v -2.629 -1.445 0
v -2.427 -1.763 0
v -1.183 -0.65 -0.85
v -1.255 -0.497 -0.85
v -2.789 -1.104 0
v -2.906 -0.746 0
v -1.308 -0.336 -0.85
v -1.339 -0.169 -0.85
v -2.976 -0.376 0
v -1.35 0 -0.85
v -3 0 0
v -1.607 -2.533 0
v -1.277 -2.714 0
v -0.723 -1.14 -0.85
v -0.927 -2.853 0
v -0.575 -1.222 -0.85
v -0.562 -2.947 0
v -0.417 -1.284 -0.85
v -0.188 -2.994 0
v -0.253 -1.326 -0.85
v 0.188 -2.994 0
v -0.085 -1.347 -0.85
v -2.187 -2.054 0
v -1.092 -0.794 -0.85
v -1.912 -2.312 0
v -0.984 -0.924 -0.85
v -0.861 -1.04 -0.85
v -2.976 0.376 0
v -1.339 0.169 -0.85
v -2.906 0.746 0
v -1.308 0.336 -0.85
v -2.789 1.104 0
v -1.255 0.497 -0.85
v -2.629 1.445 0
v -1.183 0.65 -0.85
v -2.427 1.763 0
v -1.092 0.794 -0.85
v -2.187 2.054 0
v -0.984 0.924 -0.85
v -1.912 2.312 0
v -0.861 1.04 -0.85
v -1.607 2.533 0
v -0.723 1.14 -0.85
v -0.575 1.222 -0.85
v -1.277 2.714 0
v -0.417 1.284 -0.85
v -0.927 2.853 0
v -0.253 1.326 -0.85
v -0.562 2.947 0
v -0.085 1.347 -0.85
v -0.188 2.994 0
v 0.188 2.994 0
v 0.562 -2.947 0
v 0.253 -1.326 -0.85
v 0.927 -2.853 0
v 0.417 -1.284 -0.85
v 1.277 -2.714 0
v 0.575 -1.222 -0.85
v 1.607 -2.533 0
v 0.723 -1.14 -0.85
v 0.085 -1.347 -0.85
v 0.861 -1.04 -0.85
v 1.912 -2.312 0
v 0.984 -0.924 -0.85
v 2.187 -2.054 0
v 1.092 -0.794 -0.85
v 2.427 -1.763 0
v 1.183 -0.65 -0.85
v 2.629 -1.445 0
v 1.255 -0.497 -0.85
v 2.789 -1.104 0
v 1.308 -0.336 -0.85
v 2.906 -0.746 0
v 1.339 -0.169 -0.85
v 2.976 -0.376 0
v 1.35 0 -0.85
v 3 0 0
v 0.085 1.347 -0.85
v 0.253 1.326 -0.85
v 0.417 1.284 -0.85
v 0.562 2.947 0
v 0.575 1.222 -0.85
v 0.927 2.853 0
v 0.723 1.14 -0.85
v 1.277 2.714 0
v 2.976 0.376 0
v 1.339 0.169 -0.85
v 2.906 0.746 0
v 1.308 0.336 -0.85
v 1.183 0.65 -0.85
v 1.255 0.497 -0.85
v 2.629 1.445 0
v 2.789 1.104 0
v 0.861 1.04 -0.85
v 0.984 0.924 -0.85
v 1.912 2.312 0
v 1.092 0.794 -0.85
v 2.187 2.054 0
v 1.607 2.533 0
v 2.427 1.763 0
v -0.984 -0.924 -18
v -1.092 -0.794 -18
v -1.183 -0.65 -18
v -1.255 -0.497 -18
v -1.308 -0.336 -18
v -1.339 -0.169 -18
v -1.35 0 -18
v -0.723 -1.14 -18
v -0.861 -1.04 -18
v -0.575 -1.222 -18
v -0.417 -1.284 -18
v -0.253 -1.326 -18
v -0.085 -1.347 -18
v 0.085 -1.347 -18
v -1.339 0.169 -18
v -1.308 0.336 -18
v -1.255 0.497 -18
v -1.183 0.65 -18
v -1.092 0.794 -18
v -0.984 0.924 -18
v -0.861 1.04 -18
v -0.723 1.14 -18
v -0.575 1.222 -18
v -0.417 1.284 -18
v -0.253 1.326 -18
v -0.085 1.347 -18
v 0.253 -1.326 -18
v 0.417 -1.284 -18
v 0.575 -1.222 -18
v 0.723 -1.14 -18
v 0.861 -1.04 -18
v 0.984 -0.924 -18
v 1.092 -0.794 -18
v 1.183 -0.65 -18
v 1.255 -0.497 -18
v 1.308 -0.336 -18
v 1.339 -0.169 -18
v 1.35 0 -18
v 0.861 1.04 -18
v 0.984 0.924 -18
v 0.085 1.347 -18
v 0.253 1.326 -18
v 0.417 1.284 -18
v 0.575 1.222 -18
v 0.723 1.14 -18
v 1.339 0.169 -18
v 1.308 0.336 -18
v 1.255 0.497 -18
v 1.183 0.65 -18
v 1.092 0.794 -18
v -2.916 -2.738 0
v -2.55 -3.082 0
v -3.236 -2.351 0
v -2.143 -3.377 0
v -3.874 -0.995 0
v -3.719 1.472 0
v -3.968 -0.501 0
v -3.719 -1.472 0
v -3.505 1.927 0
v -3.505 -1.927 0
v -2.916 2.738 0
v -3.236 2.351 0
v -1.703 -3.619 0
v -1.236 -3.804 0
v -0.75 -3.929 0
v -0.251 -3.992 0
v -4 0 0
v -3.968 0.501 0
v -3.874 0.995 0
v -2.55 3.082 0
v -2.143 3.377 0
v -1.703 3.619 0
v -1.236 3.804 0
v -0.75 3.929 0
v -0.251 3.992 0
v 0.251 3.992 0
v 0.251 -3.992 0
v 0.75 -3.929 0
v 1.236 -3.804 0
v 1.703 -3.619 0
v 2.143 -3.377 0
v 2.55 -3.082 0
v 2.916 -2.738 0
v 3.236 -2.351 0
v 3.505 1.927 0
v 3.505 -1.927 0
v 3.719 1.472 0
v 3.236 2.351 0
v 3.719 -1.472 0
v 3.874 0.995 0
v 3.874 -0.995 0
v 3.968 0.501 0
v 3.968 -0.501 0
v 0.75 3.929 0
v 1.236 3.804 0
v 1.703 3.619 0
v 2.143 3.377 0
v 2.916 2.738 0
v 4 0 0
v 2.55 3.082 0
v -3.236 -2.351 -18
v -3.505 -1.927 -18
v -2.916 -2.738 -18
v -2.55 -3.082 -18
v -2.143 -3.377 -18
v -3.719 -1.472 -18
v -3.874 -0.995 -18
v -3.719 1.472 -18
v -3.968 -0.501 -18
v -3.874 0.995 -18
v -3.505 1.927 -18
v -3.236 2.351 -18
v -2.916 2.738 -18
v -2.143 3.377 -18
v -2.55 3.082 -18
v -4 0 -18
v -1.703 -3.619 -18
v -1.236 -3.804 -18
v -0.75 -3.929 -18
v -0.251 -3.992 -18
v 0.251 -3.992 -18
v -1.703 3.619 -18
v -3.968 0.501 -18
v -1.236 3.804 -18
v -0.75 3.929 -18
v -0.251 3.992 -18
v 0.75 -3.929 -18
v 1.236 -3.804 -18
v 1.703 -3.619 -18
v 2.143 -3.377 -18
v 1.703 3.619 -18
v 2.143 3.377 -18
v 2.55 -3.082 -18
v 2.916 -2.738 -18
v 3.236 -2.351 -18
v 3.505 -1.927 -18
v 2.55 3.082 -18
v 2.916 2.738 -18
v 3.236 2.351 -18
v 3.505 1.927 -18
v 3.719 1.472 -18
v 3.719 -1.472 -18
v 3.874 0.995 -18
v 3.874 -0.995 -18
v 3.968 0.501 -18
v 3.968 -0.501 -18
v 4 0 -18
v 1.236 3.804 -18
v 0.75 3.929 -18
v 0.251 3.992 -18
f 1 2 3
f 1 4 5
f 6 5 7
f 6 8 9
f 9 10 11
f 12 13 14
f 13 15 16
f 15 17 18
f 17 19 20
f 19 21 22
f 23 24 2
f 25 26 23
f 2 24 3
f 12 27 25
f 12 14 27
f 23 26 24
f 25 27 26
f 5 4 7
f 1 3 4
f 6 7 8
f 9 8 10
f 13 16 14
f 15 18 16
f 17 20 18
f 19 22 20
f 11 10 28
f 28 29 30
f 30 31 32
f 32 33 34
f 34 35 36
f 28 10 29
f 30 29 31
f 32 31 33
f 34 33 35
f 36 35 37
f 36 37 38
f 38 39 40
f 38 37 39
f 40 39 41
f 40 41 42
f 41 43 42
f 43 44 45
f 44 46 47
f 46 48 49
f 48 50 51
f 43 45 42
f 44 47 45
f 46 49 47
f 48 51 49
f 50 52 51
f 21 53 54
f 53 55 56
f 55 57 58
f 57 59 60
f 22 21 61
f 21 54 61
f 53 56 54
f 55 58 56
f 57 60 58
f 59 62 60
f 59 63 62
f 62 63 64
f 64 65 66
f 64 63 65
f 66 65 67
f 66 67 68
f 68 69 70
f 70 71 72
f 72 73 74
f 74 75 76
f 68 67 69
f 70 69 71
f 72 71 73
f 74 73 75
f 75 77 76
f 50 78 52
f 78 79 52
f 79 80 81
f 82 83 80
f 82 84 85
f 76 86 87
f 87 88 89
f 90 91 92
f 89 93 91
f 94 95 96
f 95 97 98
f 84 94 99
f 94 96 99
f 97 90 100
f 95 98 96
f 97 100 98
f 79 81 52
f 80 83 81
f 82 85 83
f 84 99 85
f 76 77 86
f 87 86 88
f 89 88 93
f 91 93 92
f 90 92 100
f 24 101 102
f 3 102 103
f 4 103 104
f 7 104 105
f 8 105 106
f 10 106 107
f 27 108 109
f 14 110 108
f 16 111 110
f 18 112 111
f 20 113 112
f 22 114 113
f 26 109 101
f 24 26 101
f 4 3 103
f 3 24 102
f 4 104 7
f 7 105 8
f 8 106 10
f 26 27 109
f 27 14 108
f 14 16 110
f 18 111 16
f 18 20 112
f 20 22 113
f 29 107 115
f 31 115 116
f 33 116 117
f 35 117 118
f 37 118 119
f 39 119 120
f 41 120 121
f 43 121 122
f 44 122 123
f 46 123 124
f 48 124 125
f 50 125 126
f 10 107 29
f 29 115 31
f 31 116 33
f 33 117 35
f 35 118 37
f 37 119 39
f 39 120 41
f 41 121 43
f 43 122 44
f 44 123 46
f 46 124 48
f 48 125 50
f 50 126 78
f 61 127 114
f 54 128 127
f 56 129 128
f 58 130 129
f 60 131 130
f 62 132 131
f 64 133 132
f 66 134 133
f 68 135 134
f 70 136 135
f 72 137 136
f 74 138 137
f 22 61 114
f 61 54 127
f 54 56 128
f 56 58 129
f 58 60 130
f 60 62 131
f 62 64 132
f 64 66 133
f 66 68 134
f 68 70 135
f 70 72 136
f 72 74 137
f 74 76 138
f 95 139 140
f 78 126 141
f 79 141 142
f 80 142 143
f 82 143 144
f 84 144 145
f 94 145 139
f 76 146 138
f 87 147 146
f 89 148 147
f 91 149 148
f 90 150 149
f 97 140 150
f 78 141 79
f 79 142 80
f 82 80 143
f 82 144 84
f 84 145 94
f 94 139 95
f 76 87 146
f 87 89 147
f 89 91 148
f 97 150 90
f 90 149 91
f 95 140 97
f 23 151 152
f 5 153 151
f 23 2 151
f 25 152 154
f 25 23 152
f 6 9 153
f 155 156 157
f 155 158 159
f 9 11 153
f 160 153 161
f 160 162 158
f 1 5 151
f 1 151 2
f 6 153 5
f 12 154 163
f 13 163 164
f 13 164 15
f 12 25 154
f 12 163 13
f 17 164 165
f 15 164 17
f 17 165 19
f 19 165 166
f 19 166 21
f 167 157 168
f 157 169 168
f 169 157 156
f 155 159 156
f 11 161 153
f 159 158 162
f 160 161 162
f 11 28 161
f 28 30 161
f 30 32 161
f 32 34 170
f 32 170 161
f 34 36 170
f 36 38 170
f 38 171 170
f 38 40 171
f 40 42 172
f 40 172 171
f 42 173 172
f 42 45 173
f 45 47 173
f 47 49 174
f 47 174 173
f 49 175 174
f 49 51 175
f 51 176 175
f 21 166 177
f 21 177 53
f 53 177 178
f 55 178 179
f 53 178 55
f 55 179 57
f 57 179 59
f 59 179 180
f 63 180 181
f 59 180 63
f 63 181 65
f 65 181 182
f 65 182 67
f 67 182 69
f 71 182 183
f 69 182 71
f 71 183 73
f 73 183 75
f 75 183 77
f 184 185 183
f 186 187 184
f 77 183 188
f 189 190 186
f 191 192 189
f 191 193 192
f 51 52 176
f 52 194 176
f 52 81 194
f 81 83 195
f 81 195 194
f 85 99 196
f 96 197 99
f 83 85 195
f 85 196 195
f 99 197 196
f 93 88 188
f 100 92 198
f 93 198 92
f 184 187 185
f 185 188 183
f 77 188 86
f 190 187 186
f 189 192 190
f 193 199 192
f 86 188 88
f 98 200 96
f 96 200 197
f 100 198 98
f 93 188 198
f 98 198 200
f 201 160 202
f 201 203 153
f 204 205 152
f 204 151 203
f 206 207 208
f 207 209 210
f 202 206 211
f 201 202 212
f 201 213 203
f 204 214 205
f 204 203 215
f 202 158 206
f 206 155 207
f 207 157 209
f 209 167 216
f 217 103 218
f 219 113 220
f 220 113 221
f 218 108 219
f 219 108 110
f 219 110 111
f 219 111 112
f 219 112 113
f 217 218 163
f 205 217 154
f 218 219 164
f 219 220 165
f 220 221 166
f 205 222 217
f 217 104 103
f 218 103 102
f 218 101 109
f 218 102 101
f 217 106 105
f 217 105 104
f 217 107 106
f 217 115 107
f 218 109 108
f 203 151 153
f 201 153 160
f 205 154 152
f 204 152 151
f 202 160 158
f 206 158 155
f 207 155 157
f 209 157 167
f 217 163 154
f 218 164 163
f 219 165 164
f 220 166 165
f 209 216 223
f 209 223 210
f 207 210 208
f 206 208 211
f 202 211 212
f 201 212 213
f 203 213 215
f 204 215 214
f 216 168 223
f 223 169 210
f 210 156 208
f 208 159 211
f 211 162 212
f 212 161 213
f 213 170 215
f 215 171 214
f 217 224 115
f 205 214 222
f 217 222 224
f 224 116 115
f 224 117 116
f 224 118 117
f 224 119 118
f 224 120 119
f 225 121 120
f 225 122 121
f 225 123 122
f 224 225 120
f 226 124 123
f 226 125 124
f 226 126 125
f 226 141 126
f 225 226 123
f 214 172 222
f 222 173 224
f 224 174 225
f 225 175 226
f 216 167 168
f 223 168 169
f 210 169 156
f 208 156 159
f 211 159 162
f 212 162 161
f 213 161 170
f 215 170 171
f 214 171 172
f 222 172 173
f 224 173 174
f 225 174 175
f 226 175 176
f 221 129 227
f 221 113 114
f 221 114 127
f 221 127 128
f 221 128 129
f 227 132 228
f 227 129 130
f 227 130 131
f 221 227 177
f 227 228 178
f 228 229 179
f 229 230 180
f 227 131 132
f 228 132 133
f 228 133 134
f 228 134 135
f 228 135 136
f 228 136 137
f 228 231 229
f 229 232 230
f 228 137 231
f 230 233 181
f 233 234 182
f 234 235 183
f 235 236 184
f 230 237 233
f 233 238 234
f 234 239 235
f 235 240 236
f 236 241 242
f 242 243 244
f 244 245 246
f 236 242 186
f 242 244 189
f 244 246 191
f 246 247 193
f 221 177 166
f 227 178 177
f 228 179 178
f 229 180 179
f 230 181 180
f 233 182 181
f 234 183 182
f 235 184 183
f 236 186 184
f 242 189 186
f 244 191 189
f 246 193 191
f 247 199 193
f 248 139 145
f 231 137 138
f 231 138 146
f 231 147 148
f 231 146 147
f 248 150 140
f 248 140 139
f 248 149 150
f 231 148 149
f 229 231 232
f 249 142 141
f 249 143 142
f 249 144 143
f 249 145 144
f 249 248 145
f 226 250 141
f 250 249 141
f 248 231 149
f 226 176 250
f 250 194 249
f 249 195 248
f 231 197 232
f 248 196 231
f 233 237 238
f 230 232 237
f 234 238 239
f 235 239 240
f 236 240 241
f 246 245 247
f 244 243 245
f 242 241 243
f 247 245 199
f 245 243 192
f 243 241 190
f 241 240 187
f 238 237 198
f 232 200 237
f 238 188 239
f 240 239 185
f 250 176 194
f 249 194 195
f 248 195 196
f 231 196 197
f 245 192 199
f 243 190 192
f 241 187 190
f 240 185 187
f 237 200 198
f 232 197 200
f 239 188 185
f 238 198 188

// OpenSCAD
$fn = 50;

difference() {
	union() {
		translate(v = [0, 0, -18.0]) {
			cylinder(h = 21, r = 4.0);
		}
	}
	union() {
		translate(v = [0, 0, 0]) {
			rotate(a = [0, 0, 0]) {
				difference() {
					union() {
						translate(v = [0, 0, -21.0]) {
							cylinder(h = 21, r = 1.0);
						}
						translate(v = [0, 0, -0.85]) {
							cylinder(h = 0.85, r1 = 1.35, r2 = 3.0);
						}
						translate(v = [0, 0, -21.0]) {
							cylinder(h = 21, r = 1.35);
						}
						translate(v = [0, 0, -21.0]) {
							cylinder(h = 21, r = 1.0);
						}
					}
					union();
				}
			}
		}
		#cylinder(h = 3, r = 5.0);
	}
}
